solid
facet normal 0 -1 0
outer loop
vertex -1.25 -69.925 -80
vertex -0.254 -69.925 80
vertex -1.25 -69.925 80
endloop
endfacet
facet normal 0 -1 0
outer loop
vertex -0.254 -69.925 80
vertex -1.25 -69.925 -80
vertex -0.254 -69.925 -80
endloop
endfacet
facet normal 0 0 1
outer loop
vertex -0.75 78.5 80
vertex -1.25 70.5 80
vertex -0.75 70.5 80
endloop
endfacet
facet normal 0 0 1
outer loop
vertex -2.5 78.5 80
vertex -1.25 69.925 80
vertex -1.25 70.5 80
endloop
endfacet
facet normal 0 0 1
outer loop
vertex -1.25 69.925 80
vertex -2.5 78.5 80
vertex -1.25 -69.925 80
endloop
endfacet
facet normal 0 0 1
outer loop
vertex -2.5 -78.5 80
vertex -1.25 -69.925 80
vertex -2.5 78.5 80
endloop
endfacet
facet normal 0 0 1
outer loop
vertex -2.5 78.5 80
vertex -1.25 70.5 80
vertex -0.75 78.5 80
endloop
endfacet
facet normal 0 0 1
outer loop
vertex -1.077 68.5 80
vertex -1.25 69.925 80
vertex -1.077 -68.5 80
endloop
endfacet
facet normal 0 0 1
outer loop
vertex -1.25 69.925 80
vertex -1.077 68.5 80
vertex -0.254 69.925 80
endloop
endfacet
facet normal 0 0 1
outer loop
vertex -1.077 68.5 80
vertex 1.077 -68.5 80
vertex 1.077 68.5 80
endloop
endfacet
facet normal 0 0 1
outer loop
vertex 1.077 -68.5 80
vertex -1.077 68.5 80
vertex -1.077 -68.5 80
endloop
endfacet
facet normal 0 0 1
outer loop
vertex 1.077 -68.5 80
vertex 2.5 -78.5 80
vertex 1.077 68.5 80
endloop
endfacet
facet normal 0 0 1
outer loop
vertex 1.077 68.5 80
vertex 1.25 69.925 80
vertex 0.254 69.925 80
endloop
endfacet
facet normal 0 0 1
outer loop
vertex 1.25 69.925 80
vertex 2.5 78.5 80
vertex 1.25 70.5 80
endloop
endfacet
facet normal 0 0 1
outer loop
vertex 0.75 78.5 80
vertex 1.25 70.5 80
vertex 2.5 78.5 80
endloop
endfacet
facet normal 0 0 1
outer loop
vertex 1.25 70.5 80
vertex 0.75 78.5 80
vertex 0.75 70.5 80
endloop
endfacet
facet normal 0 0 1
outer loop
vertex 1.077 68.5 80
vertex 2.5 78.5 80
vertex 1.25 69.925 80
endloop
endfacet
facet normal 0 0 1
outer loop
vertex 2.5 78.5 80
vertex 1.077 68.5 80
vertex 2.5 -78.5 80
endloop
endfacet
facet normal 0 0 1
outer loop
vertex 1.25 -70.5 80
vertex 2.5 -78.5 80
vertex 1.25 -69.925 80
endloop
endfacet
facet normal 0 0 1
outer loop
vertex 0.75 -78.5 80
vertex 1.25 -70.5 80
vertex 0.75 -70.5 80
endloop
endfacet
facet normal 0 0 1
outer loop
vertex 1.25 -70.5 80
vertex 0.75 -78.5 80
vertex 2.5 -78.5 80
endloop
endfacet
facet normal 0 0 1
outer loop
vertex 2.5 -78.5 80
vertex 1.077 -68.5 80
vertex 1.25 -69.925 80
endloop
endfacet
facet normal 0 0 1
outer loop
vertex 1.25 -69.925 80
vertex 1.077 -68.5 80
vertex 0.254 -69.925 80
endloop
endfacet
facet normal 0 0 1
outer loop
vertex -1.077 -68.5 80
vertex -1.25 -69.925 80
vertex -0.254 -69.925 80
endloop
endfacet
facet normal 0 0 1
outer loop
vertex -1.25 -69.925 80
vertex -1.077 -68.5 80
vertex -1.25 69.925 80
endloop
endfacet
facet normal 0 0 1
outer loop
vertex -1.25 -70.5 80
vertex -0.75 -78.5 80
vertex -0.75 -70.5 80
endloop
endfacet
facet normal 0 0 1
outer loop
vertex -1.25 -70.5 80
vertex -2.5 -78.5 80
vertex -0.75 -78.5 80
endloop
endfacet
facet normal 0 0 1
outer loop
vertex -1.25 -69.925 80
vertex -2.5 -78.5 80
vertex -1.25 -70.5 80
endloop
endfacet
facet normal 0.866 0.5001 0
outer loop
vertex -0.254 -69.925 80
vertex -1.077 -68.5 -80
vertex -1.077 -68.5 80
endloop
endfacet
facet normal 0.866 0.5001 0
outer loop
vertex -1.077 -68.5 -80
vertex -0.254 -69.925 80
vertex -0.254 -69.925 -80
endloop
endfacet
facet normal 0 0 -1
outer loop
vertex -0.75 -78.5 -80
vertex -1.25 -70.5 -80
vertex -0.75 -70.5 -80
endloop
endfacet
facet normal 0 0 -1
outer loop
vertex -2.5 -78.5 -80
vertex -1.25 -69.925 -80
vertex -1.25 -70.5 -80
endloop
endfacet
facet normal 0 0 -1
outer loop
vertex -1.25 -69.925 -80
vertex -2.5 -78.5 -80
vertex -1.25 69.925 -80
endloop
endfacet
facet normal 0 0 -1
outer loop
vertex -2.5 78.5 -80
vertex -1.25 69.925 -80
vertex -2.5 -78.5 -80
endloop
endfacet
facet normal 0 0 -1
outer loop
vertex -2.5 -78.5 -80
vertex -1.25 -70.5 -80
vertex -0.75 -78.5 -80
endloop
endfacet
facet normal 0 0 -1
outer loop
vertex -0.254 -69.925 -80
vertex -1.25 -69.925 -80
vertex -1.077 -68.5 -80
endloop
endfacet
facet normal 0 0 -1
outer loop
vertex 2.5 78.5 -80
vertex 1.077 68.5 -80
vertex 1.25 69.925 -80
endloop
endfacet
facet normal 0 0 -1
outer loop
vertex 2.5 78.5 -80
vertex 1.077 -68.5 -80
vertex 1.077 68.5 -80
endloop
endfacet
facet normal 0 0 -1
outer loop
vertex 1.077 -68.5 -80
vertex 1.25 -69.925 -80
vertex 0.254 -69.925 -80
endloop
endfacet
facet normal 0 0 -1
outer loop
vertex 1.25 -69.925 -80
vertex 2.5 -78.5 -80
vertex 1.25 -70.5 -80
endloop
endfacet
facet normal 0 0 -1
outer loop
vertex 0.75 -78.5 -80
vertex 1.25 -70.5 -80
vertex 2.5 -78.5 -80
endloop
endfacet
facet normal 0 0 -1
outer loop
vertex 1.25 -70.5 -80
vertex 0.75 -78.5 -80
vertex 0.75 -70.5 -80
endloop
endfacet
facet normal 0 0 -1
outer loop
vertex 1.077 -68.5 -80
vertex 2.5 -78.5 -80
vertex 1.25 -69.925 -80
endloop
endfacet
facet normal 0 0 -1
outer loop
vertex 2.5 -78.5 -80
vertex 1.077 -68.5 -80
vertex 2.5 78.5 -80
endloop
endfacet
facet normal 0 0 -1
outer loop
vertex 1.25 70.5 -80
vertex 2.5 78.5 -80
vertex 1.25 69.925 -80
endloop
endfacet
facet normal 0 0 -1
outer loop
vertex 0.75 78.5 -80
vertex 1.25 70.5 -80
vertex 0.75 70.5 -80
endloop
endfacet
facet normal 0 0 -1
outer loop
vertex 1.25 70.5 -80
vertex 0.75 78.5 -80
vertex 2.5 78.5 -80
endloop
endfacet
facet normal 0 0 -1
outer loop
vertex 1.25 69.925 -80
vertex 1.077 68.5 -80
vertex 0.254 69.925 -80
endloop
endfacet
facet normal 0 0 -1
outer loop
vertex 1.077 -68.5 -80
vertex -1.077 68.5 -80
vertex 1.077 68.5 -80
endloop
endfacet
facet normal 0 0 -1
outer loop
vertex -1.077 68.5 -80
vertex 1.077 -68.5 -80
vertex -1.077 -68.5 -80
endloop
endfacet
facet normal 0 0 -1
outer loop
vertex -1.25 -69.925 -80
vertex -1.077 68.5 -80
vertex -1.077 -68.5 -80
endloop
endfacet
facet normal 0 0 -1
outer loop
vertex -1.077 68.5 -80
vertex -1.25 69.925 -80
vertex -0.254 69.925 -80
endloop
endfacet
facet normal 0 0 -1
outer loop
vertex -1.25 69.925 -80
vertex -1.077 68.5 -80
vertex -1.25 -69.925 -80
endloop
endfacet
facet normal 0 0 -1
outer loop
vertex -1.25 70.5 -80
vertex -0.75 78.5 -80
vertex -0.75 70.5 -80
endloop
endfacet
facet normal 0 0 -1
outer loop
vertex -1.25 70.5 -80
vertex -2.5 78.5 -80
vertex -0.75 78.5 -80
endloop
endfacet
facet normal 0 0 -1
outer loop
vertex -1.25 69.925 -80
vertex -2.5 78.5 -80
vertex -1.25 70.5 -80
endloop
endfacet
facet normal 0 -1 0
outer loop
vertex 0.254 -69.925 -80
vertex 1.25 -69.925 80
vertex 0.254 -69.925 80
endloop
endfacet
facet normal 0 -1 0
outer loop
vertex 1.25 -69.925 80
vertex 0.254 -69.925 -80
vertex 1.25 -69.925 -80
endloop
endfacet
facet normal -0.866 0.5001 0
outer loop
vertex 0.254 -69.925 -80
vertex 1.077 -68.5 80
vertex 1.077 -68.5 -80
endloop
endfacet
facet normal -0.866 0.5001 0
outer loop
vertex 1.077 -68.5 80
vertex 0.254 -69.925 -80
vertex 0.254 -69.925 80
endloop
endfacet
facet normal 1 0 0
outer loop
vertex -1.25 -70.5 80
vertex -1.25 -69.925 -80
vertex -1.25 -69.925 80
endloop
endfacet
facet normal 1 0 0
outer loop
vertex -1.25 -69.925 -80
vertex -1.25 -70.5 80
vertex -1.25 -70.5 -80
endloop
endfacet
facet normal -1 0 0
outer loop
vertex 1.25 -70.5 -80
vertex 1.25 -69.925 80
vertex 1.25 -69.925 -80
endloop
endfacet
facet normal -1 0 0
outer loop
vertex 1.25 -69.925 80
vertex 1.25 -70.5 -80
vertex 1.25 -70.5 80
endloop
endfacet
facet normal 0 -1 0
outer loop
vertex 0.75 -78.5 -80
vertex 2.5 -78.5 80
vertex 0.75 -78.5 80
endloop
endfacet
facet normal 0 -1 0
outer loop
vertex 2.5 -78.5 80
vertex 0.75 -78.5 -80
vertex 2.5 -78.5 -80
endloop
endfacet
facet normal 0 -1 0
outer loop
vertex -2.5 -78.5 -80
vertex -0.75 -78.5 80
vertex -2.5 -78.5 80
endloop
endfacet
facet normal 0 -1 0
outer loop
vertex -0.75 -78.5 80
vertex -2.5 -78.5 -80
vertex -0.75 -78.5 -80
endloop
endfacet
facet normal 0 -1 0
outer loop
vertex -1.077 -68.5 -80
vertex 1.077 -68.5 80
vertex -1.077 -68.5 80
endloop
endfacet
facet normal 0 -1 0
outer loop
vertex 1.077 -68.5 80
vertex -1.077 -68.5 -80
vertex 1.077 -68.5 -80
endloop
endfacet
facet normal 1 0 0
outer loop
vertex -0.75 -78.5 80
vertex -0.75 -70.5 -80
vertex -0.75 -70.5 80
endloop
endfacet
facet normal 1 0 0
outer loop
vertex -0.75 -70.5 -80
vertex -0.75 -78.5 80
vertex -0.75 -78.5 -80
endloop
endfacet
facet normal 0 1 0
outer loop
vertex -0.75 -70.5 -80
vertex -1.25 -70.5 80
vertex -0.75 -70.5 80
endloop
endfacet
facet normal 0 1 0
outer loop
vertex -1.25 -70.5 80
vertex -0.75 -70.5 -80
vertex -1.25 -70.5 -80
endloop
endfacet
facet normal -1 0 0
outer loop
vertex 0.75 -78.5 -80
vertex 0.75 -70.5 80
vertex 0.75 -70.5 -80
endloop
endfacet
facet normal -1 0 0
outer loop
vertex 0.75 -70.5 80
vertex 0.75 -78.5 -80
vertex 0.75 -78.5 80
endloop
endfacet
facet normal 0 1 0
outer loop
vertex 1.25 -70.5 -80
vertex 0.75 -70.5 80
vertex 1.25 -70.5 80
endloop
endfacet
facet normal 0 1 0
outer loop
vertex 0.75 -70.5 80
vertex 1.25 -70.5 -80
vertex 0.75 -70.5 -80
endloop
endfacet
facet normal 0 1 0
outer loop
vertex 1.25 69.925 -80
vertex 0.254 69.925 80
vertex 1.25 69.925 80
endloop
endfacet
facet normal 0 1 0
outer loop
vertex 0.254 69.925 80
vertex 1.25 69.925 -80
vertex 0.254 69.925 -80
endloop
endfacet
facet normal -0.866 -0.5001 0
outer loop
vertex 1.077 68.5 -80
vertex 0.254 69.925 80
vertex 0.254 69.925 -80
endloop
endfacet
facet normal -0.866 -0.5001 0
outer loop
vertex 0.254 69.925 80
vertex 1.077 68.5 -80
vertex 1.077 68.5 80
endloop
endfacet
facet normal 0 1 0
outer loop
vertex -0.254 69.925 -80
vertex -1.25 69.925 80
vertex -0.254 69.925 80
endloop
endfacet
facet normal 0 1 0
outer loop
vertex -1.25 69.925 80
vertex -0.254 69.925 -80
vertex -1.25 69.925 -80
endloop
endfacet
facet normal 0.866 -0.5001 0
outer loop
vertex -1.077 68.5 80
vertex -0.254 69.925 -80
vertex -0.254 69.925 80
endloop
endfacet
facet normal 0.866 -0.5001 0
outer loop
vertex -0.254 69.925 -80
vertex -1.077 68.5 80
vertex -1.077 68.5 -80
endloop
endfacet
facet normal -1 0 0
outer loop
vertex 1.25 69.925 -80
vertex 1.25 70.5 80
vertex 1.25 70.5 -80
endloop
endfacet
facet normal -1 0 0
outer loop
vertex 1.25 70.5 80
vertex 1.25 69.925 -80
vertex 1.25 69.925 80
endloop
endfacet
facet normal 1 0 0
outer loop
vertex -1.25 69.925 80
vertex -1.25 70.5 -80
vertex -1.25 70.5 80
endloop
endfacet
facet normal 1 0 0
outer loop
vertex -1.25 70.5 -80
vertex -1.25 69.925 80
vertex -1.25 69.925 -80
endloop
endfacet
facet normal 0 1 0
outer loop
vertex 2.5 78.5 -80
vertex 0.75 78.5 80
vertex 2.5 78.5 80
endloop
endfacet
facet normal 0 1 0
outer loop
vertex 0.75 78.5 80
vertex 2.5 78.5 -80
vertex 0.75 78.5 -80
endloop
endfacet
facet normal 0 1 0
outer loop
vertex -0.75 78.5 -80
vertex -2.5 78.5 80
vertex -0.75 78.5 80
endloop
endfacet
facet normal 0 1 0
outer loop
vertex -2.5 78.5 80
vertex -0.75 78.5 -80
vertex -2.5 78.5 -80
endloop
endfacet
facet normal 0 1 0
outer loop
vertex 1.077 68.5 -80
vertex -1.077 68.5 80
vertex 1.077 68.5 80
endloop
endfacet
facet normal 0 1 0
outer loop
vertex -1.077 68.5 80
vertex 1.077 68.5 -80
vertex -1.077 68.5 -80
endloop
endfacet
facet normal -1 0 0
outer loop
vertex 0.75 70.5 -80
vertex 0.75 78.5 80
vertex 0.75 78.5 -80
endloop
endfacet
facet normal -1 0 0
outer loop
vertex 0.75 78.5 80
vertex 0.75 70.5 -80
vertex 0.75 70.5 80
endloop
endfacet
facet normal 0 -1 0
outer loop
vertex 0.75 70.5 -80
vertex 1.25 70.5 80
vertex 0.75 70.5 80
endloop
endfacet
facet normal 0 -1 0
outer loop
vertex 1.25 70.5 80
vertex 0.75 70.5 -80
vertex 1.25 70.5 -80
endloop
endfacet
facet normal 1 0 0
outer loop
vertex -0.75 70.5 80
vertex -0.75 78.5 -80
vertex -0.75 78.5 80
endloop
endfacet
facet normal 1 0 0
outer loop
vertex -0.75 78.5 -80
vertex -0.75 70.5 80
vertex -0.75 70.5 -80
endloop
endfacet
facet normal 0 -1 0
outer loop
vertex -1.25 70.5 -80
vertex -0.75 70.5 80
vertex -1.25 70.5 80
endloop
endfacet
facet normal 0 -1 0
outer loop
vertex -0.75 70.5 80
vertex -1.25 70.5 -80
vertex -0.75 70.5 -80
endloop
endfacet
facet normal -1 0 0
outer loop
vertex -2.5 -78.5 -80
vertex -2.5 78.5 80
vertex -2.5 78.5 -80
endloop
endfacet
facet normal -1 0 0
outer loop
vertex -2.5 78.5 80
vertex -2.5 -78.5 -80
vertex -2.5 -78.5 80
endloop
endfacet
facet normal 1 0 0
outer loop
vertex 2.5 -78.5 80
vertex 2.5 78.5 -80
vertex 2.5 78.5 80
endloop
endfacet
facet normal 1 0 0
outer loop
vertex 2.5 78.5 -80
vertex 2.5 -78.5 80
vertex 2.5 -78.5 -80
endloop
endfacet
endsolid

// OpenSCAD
width = 157;
height = 160;
wall_thickness = 5;
connector_depth = 8;
wall_depth = 10;

difference() {
    cube([wall_thickness,width,height], true);
    translate([0,-(width/2-wall_depth/2),0]) {
        connector();
    }
    translate([0,(width/2-wall_depth/2),0]) {
        rotate([0,0,180]) {
            connector();
        }
    }
}

module connector() {
    connector_thickness = wall_thickness * 0.5;
    wall_diff = connector_thickness*0.2;
    translate([-connector_thickness/2,-wall_depth/2,-height/2]) {
        difference() {
            cube([connector_thickness,wall_depth,height]);
            cube([wall_diff,connector_depth,height]);
            translate([connector_thickness-wall_diff,0,0]){
                cube([wall_diff,connector_depth,height]);
            }
            triangle_rad = 1.15;
            translate([0,connector_depth + triangle_rad/(wall_diff*2),0]) {
                triangle(height, triangle_rad);
                translate([connector_thickness,0,0]) {
                    triangle(height, triangle_rad);
                }
            }
        }
    }
}

module triangle(height, triangle_rad) {
    rotate([0,0,90]) {
        cylinder(h=height, r=triangle_rad, $fn=3);
    }
}
